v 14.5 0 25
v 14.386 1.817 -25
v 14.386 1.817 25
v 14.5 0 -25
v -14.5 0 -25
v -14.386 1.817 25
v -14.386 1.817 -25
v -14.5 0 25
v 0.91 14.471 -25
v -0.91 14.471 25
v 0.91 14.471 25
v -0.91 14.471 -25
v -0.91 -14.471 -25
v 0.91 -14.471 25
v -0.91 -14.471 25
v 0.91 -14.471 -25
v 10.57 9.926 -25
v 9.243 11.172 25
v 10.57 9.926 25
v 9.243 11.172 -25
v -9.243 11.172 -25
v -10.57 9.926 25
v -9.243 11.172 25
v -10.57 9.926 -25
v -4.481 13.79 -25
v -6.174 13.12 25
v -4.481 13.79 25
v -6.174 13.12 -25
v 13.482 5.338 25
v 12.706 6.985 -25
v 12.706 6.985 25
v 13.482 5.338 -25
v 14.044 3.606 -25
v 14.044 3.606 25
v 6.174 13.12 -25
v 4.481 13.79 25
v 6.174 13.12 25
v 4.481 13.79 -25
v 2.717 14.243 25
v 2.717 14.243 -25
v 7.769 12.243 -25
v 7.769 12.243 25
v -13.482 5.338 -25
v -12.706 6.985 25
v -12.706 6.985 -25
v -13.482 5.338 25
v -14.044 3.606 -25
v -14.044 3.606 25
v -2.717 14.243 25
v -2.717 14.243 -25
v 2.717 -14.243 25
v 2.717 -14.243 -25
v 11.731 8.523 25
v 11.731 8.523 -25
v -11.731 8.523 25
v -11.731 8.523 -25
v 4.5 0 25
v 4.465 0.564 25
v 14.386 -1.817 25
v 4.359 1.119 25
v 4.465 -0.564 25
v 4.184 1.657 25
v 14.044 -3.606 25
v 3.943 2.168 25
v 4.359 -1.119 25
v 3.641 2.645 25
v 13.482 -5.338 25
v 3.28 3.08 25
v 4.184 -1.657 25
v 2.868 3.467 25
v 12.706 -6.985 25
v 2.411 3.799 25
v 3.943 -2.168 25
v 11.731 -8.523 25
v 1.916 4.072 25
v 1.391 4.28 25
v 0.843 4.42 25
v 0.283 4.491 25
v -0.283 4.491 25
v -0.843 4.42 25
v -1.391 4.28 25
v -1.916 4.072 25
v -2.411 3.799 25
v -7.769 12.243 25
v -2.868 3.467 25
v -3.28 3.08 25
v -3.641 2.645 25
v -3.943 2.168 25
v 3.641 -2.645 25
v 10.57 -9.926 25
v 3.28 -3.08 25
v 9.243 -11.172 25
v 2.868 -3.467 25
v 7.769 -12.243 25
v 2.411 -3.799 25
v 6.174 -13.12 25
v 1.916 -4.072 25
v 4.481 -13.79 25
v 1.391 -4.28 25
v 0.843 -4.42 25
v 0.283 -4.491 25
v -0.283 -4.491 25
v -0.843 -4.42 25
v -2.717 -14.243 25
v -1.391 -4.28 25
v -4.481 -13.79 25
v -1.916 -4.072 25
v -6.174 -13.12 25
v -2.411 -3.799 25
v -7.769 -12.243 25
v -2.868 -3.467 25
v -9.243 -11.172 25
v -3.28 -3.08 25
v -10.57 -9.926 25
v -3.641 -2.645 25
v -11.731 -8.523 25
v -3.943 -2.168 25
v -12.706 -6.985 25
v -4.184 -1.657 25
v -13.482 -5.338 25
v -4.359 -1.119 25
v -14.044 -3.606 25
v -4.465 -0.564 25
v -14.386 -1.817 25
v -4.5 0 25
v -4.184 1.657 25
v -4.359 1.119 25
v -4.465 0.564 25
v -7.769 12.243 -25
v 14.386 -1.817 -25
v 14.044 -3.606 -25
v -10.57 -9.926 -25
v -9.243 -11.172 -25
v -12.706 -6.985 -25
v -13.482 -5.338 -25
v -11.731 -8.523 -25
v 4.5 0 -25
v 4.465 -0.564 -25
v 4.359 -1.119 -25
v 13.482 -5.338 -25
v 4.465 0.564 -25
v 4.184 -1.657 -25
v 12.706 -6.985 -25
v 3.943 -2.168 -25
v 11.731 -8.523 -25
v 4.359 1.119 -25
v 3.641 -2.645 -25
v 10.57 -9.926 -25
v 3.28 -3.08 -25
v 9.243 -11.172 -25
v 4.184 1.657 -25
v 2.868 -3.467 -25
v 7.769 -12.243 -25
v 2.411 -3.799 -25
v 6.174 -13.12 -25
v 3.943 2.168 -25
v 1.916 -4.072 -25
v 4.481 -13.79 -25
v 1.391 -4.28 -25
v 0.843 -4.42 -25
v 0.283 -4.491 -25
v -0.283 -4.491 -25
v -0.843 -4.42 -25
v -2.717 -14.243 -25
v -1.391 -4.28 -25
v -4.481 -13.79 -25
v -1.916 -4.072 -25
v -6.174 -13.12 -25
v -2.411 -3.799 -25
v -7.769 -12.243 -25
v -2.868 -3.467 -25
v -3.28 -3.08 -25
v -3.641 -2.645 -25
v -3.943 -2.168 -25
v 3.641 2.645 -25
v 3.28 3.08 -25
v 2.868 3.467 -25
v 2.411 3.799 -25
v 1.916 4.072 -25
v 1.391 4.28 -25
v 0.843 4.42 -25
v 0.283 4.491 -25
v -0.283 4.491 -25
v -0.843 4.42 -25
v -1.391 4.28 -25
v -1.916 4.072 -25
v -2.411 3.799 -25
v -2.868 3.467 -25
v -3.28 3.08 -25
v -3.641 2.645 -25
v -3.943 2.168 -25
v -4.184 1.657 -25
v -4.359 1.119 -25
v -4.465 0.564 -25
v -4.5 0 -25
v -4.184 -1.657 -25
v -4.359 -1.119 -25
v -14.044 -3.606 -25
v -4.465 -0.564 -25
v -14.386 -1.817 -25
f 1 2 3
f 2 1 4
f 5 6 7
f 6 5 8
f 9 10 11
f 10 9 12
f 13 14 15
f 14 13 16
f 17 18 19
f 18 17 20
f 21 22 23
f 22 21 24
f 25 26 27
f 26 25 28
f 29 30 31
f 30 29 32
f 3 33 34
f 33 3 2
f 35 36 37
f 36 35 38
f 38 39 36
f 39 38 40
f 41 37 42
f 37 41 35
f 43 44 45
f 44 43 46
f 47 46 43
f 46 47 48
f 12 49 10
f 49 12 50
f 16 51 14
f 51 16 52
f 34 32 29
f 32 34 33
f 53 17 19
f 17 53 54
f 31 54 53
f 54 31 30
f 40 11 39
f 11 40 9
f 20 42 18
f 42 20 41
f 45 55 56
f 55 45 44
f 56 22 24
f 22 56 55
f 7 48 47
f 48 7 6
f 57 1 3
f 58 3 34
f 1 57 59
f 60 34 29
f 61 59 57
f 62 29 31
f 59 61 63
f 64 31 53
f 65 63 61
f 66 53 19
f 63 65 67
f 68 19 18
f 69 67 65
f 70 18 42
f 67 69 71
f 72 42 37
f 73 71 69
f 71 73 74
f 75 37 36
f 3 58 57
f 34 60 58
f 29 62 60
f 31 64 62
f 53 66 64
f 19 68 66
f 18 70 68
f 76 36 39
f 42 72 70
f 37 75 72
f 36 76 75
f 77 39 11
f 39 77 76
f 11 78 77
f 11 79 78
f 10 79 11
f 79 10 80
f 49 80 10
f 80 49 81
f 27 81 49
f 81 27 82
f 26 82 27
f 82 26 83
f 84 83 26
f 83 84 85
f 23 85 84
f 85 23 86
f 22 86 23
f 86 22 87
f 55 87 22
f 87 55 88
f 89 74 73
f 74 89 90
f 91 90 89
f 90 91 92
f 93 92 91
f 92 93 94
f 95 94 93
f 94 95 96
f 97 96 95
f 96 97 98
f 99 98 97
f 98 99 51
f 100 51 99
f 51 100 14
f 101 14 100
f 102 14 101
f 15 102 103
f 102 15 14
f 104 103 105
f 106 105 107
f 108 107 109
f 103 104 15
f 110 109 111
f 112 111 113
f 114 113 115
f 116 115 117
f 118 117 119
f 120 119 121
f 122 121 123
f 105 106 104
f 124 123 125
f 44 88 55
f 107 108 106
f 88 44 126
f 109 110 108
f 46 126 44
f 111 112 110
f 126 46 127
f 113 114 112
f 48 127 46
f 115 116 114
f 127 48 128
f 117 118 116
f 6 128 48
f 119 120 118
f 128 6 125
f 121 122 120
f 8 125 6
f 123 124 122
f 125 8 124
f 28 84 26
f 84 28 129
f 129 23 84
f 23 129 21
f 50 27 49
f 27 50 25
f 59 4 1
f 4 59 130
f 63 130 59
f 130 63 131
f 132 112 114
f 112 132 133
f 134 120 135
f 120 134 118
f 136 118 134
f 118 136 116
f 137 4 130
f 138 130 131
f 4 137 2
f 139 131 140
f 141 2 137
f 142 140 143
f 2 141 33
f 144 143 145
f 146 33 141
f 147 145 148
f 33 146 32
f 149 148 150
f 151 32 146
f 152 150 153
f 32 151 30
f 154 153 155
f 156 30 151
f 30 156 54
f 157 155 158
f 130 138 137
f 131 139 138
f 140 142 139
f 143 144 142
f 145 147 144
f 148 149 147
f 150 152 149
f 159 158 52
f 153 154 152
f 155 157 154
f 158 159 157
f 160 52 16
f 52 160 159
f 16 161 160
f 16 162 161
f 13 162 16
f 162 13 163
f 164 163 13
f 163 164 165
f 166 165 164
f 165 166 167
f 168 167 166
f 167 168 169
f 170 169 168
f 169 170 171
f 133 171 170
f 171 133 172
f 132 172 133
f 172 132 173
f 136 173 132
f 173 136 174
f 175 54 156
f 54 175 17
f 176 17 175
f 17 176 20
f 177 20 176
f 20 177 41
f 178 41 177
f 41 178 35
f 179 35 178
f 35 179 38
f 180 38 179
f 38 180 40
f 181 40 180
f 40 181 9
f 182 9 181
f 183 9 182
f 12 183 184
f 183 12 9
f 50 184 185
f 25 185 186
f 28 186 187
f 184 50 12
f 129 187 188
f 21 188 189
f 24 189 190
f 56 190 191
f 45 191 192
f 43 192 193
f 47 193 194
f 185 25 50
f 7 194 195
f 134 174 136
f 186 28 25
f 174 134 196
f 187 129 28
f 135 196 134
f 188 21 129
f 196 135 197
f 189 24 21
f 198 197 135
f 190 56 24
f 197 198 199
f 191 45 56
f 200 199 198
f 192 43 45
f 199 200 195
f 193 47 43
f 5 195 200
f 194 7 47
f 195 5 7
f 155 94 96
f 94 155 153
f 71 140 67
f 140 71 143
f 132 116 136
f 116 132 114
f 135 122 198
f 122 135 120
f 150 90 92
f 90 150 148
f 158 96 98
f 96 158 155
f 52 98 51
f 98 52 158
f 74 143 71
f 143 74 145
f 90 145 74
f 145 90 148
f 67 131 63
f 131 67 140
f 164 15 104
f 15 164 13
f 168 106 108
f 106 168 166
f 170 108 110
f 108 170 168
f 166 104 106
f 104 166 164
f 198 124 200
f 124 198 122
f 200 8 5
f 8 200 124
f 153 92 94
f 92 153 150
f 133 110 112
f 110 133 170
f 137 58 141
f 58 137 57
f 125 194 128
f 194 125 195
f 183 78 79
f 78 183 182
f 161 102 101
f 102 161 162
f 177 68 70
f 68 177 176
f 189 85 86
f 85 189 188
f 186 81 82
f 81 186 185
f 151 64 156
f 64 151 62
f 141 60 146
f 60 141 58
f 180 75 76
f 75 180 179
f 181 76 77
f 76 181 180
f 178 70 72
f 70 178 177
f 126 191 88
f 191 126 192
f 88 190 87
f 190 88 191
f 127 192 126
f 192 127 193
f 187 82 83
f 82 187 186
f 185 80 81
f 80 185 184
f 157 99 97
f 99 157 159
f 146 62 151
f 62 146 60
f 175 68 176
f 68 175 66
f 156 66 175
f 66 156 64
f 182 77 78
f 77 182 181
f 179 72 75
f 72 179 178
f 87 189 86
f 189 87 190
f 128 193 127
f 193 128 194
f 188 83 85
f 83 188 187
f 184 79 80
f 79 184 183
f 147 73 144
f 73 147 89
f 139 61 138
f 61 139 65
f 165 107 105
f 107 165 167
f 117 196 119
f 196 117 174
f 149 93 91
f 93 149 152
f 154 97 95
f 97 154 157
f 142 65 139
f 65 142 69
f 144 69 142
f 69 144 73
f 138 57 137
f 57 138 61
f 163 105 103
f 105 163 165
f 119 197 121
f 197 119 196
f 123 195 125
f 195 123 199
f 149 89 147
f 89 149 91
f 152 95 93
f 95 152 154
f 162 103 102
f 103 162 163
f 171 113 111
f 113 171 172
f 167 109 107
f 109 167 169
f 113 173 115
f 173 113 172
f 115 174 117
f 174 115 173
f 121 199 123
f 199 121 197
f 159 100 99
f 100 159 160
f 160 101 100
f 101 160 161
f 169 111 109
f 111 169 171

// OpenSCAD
$fn = 50;


difference() {
	union() {
		translate(v = [0, 0, -25.0000000000]) {
			cylinder(h = 50, r = 14.5000000000);
		}
	}
	union() {
		translate(v = [0, 0, -100.0000000000]) {
			cylinder(h = 200, r = 4.5000000000);
		}
	}
}
